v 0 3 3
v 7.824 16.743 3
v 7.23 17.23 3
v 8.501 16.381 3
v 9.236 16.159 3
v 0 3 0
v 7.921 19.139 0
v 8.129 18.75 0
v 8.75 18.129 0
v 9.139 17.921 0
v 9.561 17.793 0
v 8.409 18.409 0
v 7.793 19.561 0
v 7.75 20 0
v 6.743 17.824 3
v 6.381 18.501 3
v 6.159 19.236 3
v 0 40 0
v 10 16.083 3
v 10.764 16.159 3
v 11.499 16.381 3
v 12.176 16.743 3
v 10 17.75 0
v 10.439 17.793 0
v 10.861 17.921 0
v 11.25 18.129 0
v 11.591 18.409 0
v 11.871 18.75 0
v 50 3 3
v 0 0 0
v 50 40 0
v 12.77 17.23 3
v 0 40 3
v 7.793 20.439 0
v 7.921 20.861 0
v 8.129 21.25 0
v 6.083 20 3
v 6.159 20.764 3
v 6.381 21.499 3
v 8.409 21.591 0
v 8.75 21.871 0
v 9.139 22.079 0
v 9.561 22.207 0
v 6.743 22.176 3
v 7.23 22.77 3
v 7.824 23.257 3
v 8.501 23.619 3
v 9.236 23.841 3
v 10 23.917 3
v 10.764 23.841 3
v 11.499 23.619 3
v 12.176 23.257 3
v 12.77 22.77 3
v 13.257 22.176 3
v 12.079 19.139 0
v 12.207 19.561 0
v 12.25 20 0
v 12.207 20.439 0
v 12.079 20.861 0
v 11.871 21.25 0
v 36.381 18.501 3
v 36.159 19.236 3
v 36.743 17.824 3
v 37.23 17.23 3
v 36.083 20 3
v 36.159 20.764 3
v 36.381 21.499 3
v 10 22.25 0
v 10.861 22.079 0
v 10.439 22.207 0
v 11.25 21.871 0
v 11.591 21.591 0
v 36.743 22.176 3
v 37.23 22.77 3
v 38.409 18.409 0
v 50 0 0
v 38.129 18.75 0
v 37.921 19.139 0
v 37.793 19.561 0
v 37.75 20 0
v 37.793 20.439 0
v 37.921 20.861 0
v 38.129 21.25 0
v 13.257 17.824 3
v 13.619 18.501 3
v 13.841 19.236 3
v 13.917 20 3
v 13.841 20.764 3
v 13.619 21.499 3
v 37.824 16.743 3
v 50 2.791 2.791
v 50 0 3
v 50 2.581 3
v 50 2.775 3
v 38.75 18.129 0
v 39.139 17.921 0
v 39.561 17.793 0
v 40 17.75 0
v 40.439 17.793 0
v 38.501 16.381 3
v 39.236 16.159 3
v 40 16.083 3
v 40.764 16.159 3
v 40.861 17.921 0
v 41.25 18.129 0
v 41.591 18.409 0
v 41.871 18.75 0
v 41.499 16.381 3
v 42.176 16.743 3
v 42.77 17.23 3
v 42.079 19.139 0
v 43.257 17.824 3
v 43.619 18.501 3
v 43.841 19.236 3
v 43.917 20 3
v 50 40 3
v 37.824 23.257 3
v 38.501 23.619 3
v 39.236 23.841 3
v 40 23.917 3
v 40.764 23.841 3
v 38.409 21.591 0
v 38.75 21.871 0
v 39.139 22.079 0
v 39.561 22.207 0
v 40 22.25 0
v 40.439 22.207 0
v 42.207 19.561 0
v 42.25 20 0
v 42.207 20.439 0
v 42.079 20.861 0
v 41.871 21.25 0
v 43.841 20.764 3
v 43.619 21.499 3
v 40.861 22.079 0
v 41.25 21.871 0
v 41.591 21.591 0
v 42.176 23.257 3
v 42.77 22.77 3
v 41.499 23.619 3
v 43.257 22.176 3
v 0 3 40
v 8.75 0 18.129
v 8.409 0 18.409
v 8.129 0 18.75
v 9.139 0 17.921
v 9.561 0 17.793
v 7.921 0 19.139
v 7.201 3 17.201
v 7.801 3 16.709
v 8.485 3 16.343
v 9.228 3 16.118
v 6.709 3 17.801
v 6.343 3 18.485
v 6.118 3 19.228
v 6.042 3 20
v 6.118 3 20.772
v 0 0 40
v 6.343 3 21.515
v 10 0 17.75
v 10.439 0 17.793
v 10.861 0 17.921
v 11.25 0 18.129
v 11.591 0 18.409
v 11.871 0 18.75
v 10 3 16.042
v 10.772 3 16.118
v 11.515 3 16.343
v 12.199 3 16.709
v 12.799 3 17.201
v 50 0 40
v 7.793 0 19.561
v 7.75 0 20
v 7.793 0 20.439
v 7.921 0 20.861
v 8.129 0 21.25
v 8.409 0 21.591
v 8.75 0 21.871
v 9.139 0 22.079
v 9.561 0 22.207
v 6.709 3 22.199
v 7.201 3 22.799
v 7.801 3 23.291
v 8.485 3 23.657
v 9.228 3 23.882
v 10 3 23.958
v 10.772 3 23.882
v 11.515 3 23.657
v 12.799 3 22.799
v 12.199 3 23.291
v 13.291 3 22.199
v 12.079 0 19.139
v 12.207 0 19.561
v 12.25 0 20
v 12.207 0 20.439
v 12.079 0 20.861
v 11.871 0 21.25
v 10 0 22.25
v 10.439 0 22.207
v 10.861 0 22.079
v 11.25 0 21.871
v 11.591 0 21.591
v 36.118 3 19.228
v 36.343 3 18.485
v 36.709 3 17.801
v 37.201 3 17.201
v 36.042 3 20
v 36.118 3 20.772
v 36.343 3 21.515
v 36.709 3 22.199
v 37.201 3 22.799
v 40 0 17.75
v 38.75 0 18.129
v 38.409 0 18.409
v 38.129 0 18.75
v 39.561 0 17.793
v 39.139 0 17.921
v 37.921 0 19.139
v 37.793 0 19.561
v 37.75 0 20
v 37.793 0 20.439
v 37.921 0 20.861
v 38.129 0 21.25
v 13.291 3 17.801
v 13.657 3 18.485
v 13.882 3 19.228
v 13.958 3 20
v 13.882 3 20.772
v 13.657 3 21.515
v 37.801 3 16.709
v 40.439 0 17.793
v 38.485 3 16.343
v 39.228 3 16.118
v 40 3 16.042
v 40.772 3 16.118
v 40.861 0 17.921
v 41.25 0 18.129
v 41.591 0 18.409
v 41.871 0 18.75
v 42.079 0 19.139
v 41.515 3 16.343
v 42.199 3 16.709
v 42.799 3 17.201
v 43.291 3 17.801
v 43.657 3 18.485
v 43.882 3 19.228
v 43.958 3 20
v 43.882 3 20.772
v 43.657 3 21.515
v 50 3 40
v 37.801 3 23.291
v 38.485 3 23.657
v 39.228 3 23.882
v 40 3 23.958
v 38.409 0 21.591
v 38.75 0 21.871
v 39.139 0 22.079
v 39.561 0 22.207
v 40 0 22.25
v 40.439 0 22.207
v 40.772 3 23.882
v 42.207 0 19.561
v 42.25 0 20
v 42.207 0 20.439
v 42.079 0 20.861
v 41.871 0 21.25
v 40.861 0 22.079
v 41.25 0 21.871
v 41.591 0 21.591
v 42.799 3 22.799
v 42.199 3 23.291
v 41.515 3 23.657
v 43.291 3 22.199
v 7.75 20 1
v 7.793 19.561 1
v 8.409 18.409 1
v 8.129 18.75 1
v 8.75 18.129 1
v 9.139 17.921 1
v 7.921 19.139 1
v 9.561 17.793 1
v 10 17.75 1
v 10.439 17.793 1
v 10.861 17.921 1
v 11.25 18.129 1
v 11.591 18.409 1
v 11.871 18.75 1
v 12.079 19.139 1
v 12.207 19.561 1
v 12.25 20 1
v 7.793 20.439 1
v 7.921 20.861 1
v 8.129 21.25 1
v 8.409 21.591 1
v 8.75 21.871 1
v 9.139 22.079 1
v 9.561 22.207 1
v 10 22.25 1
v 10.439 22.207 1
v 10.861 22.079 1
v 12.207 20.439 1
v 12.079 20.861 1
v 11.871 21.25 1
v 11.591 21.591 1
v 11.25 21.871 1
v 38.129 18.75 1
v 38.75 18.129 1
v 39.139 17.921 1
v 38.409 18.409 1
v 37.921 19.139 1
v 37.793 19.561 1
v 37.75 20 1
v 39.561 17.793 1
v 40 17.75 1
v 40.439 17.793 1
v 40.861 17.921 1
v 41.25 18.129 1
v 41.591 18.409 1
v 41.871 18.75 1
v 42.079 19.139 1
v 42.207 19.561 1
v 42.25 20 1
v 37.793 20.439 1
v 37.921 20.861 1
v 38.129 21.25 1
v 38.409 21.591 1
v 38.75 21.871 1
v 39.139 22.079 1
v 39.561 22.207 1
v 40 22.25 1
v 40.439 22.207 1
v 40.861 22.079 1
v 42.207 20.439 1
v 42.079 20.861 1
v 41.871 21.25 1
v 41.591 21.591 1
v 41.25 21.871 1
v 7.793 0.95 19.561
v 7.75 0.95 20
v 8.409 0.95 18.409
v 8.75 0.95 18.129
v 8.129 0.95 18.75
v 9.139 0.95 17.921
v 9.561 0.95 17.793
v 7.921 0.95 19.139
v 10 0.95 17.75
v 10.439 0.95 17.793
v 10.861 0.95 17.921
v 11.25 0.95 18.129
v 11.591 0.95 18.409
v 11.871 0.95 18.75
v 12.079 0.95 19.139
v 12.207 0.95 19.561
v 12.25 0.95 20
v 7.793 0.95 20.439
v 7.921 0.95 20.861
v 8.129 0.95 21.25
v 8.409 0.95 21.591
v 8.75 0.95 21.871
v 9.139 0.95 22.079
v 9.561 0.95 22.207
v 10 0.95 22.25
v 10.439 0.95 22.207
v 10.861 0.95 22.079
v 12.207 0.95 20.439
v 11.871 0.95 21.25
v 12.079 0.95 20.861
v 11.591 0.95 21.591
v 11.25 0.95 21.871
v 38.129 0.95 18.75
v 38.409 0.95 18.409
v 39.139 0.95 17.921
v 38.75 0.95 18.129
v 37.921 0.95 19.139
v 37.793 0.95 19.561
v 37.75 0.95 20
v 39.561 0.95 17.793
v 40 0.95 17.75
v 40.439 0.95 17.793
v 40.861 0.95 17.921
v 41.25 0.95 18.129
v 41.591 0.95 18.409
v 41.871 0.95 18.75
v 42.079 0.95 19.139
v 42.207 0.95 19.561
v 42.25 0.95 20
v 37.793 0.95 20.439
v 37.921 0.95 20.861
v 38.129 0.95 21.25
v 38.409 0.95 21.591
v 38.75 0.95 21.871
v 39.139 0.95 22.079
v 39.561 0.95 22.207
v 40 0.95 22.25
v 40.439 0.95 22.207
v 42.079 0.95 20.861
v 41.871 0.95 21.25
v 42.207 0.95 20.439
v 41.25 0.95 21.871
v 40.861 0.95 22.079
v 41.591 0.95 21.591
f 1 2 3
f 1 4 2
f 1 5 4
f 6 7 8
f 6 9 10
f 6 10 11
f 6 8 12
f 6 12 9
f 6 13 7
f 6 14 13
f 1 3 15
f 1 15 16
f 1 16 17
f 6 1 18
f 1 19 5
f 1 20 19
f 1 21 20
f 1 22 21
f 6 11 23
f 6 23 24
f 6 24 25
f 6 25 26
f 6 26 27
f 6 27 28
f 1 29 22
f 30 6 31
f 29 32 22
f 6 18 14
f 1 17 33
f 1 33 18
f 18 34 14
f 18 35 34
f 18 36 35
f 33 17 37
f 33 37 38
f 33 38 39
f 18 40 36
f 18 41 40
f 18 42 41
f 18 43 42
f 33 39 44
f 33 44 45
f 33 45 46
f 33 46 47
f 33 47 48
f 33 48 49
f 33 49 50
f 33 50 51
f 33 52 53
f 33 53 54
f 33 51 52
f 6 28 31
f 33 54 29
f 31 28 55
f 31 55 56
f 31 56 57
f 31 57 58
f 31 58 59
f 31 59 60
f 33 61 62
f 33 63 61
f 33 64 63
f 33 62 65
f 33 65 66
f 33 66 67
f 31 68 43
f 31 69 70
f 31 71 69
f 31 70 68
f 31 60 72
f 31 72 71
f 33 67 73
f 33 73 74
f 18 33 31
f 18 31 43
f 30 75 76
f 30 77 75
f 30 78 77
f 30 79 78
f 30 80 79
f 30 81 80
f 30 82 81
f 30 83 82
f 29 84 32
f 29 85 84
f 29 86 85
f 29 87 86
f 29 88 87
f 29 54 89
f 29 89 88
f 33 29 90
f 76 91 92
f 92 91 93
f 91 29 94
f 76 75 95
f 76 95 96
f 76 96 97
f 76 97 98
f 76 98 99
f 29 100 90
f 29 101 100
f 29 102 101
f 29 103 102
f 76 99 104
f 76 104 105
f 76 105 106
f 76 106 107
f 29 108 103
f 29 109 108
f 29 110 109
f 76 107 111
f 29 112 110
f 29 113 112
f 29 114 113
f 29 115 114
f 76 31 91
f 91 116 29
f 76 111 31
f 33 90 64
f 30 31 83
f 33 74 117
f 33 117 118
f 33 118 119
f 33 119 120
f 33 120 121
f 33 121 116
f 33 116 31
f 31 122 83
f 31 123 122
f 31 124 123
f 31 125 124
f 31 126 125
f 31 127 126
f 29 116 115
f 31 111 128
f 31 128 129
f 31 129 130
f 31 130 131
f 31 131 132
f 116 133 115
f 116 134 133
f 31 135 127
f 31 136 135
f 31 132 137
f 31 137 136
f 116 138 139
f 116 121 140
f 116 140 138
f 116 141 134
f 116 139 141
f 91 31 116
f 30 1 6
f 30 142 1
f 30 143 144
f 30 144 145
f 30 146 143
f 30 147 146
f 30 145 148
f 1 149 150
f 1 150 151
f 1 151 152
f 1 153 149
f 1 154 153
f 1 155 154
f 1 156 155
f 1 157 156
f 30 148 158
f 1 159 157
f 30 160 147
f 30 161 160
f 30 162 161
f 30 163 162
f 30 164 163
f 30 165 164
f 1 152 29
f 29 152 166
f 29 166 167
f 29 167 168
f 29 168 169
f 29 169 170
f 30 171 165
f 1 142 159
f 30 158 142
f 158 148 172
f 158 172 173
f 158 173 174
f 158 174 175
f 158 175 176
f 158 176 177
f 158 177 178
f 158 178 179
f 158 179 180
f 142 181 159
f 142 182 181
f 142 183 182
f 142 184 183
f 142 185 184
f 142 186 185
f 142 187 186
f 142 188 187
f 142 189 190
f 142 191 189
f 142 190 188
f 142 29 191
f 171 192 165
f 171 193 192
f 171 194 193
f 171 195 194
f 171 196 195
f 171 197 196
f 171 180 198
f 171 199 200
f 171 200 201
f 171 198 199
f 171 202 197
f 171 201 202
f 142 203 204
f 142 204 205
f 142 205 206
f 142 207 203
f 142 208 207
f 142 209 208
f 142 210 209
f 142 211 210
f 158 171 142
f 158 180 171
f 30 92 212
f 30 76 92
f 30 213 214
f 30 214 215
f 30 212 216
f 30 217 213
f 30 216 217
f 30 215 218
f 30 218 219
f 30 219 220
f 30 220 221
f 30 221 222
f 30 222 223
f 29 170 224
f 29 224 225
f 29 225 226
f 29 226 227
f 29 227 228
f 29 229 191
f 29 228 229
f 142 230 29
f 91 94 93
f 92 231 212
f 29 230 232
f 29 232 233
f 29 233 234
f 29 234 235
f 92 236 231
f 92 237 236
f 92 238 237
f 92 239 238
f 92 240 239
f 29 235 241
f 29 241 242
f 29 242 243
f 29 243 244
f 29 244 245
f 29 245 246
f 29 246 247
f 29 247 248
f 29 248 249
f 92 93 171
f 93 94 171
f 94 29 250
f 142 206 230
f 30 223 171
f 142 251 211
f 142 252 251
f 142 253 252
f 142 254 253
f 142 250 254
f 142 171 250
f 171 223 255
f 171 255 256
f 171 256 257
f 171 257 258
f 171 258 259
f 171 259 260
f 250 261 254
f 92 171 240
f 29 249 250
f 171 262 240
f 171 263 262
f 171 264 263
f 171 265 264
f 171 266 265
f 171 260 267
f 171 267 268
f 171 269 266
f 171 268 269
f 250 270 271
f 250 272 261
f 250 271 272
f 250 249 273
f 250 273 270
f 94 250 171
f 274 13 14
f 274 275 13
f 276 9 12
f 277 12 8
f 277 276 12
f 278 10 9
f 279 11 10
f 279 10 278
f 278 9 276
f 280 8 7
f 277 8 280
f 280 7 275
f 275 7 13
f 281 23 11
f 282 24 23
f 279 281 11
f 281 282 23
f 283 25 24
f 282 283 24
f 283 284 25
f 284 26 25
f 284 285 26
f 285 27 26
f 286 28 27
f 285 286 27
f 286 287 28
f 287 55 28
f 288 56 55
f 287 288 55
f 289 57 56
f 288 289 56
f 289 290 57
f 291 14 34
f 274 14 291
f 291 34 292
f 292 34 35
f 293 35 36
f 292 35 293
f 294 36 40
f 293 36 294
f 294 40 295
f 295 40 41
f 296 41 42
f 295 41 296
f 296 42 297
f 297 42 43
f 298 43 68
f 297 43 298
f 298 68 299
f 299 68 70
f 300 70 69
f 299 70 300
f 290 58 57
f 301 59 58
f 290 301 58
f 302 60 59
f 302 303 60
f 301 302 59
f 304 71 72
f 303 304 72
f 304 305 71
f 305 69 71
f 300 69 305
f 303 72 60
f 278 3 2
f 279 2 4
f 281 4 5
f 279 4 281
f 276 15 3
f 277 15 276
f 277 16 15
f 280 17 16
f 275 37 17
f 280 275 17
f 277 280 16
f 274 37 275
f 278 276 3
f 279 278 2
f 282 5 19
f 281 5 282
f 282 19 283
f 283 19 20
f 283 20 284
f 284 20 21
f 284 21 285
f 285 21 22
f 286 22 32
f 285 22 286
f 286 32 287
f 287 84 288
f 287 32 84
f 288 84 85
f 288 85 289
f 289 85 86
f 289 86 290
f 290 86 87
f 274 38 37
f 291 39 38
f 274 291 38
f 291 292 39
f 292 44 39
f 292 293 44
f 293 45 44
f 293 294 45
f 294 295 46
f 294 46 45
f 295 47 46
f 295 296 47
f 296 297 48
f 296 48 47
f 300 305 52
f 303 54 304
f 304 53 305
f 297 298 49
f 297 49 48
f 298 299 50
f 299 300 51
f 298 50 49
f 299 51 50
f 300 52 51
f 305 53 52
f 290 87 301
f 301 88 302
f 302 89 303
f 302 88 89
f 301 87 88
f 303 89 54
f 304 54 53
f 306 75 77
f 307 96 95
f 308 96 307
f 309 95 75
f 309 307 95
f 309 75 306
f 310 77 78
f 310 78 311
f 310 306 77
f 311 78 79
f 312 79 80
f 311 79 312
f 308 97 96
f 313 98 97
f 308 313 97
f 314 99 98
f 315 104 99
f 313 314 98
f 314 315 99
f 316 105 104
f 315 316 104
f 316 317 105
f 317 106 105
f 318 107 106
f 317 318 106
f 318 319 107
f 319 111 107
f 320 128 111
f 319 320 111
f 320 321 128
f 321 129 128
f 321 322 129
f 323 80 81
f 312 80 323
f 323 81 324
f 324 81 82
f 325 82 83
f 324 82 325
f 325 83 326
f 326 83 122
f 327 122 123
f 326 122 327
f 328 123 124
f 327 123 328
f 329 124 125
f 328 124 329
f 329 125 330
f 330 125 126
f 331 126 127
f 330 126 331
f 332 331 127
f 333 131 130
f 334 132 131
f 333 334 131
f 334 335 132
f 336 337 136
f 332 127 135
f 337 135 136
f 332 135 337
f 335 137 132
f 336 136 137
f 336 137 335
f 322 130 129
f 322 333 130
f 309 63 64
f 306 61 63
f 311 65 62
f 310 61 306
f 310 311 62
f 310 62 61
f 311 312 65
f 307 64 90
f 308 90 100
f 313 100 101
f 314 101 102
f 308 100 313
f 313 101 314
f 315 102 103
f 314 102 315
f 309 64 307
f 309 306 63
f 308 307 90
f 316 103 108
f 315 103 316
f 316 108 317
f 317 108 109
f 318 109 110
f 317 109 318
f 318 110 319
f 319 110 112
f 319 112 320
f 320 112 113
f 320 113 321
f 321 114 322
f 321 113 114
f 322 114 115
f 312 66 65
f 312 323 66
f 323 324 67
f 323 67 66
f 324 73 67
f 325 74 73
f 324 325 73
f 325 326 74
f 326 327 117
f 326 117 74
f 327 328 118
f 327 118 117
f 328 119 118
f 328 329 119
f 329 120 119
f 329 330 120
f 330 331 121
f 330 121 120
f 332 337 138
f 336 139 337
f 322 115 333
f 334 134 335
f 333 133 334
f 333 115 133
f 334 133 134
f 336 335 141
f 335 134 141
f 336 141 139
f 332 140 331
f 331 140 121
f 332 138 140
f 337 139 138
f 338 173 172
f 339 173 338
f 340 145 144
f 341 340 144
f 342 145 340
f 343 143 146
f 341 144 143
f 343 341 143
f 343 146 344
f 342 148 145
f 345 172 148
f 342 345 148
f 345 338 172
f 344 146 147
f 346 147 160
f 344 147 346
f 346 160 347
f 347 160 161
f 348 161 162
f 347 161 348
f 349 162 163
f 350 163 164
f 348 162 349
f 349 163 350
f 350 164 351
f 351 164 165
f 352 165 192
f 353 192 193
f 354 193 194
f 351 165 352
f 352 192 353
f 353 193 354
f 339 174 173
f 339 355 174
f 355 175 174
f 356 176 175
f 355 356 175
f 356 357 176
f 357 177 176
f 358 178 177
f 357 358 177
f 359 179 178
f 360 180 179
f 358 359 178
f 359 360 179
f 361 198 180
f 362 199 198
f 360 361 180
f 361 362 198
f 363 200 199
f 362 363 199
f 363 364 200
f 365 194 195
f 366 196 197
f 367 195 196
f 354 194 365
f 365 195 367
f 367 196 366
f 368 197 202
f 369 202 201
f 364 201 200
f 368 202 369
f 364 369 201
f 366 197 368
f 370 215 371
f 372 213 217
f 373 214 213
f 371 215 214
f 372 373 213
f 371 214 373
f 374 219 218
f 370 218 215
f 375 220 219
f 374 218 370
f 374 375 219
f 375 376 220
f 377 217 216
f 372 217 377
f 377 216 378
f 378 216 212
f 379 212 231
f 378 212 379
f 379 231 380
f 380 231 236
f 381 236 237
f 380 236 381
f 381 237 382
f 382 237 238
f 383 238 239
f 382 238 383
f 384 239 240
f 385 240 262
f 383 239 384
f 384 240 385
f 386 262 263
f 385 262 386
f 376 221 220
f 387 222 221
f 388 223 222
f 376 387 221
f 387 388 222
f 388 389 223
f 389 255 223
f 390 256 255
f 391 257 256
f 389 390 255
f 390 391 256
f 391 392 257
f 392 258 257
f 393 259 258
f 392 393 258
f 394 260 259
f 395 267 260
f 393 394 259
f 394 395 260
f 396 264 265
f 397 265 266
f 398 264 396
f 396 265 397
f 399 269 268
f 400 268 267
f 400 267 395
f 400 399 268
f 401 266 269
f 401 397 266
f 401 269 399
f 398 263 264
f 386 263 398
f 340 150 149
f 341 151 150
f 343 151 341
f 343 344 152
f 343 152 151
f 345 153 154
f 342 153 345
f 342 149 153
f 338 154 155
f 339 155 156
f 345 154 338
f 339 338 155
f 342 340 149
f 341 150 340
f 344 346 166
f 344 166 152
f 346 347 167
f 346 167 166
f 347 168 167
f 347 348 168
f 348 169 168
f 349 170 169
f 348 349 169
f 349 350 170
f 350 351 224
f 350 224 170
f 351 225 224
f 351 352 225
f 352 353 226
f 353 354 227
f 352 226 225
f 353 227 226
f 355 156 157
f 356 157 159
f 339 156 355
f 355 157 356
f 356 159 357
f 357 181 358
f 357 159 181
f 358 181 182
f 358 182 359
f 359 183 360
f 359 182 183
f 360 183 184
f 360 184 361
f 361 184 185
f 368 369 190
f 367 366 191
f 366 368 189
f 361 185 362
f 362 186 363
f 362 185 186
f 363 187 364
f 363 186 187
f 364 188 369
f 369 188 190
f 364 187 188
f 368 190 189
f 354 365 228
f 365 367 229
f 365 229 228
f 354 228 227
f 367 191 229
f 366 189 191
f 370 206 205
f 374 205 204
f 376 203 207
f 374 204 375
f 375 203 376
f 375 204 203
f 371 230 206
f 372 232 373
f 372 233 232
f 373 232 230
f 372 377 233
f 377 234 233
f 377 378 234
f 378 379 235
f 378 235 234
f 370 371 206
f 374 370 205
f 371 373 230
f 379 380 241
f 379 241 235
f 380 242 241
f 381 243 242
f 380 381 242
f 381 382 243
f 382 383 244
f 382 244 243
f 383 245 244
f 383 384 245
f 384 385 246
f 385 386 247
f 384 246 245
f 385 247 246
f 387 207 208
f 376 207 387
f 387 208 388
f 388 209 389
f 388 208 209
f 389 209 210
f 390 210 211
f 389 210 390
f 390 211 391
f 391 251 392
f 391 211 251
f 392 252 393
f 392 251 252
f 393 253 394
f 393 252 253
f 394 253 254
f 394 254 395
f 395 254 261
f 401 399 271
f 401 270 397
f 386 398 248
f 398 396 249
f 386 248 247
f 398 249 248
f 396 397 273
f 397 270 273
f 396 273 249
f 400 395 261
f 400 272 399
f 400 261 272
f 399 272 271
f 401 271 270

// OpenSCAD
// L-bracket parameters
width = 50;
depth = 40;
height = 40;
thickness = 3;

// Countersunk hole parameters
hole_dia = 4.5;
countersink_dia = 8;
countersink_depth = 2;
hole_offset = 10;

// Main L-bracket
difference() {
    union() {
        // Horizontal flange
        cube([width, depth, thickness]);
        
        // Vertical flange
        cube([width, thickness, height]);
    }
    
    // Horizontal flange holes
    for (x = [hole_offset, width - hole_offset]) {
        translate([x, depth/2, 0]) {
            // Through hole
            cylinder(h = thickness + 0.1, d = hole_dia, $fn = 32);
            // Countersink
            translate([0, 0, thickness - countersink_depth])
                cylinder(h = countersink_depth + 0.1, d1 = hole_dia, d2 = countersink_dia, $fn = 32);
        }
    }
    
    // Vertical flange holes
    for (x = [hole_offset, width - hole_offset]) {
        translate([x, -0.05, height/2]) {
            rotate([-90, 0, 0]) {
                // Through hole
                cylinder(h = thickness + 0.1, d = hole_dia, $fn = 32);
                // Countersink
                translate([0, 0, thickness - countersink_depth])
                    cylinder(h = countersink_depth + 0.1, d1 = hole_dia, d2 = countersink_dia, $fn = 32);
            }
        }
    }
}
